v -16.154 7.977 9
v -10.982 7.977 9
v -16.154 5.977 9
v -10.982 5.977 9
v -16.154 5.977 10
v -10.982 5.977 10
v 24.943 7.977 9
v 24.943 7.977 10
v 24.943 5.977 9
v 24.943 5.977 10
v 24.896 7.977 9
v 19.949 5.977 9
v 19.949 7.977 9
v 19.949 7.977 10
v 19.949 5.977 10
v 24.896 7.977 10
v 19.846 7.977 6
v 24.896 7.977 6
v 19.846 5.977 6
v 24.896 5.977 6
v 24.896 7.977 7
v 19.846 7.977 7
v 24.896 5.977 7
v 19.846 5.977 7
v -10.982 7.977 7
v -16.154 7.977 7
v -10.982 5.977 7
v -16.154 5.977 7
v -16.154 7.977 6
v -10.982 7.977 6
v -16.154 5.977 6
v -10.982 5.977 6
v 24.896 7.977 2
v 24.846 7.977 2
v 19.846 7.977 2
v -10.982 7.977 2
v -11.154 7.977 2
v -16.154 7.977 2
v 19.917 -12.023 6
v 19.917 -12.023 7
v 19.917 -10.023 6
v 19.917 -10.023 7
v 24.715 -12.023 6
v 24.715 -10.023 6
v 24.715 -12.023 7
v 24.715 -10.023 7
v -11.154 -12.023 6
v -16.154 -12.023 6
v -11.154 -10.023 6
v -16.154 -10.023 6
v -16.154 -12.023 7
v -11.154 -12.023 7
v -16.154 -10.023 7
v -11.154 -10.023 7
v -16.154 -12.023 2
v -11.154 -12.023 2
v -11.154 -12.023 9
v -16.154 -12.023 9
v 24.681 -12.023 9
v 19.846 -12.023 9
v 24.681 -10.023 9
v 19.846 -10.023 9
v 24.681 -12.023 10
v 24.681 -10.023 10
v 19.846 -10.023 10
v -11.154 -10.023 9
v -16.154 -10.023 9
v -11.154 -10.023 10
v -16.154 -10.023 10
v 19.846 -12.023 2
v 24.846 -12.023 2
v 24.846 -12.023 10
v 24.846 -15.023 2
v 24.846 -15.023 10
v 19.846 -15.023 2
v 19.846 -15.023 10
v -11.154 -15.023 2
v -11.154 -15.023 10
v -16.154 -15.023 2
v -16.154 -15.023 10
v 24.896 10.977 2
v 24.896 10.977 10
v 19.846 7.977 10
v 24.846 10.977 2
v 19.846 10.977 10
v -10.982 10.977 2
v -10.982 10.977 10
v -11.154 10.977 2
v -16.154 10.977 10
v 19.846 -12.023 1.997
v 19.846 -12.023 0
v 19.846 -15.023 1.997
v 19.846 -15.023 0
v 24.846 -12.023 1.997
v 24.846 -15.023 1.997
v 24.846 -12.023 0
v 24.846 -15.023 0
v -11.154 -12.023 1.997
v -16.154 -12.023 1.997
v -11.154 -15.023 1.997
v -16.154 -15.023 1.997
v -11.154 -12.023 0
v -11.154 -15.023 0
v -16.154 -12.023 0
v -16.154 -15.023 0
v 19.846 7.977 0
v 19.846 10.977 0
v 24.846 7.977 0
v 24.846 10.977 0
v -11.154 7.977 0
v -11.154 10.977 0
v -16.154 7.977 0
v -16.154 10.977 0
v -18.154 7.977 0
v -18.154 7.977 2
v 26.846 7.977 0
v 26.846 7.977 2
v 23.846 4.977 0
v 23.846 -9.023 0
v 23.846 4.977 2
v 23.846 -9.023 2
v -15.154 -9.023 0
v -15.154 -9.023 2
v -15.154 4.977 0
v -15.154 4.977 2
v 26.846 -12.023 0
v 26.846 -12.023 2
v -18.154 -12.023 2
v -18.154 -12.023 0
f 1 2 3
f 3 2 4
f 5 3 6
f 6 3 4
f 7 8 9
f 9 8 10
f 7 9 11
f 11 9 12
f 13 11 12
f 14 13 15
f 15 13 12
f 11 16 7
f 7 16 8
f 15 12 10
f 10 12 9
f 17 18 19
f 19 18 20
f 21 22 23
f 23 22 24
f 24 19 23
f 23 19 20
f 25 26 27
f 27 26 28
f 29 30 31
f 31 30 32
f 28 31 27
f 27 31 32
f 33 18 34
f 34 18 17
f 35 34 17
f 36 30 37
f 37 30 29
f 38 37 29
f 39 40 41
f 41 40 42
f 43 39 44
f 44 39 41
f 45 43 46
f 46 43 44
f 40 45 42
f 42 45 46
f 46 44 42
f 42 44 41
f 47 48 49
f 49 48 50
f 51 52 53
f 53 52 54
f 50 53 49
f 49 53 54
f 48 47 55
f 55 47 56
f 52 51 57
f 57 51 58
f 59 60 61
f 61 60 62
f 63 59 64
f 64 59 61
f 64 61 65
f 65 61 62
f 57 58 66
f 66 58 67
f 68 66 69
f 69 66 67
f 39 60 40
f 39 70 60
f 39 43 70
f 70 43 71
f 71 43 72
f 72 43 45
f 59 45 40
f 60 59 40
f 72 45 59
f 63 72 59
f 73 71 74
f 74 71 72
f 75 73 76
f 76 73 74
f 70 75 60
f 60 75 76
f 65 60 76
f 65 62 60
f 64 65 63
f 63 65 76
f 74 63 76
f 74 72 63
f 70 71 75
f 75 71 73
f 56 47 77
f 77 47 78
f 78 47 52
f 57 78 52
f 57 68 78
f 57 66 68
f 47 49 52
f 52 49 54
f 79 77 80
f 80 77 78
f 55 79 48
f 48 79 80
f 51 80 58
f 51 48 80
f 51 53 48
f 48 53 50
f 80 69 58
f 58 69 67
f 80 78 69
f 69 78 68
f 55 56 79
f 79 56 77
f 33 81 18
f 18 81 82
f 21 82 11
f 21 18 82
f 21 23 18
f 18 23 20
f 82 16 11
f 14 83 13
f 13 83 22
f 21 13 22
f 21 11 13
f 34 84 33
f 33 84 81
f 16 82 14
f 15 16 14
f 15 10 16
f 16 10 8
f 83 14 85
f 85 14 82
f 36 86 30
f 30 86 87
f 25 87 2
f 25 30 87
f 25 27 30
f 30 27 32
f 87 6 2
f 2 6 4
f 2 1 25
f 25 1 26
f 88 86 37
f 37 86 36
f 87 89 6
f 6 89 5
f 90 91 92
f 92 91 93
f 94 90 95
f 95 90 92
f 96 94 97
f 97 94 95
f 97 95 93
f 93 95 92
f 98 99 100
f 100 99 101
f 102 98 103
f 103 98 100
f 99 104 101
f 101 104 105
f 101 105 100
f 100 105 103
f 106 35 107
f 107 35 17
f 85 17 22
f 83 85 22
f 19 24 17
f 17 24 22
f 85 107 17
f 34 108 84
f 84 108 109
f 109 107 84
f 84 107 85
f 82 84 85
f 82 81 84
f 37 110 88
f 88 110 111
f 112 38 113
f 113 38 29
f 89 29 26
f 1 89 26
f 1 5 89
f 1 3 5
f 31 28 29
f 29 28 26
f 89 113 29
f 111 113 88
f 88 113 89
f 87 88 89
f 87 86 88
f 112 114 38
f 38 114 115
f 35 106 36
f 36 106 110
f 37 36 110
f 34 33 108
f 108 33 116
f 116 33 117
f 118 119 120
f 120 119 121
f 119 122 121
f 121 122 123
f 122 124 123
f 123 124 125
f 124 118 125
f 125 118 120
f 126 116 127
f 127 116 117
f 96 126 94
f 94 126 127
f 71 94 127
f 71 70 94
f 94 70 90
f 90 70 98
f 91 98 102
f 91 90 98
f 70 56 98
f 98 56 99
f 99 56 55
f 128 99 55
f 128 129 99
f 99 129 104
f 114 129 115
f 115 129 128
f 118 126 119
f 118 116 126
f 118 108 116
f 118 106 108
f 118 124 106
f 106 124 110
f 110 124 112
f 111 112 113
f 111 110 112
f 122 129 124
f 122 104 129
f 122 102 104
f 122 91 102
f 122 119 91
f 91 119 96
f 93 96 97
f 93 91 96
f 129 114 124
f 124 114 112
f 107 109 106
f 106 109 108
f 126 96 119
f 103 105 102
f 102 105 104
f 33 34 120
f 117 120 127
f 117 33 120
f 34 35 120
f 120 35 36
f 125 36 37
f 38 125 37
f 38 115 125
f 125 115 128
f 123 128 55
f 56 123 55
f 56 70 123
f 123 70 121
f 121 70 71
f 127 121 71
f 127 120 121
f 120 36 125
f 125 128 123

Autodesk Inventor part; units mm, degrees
ref_plane "YZ Plane" through (0, 0, 0) normal (1, 0, 0) x (0, 1, 0)
ref_plane "XZ Plane" through (0, 0, 0) normal (0, 1, 0) x (-1, 0, 0)
ref_plane "XY Plane" through (0, 0, 0) normal (0, 0, 1) x (1, 0, 0)
sketch "Sketch1" plane through (0, 0, 0) normal (0, 0, 1) x (1, 0, 0)
  line L0 (-18.1542, 7.9766) -> (26.8458, 7.9766)
  line L1 (26.8458, 7.9766) -> (26.8458, -12.0234)
  line L2 (26.8458, -12.0234) -> (-18.1542, -12.0234)
  line L3 (-18.1542, -12.0234) -> (-18.1542, 7.9766)
  line L4 (-15.1542, 4.9766) -> (23.8458, 4.9766)
  line L5 (23.8458, 4.9766) -> (23.8458, -9.0234)
  line L6 (23.8458, -9.0234) -> (-15.1542, -9.0234)
  line L7 (-15.1542, -9.0234) -> (-15.1542, 4.9766)
  point P0 (0, 0)
  dimension "d0" = 45
  dimension "d1" = 20
  dimension "d2" = 3
  dimension "d3" = 3
  dimension "d4" = 3
  dimension "d5" = 3
extrude "Extrusion1" add sketch "Sketch1" along normal blind 2
sketch "Sketch2" plane through (0, 0, 2) normal (0, 0, 1) x (1, 0, 0)
  point P0 (0, 0)
sketch "Sketch3" plane through (-18.1542, 7.9766, 0) normal (0, 1, 0) x (1, 0, 0)
  line L0 (3, -2) -> (42, -2) projected
  line L1 (2, 0) -> (7, 0)
  line L2 (7, 0) -> (7, -2)
  line L3 (7, -2) -> (2, -2)
  line L4 (2, -2) -> (2, 0)
  line L5 (42, 0) -> (3, 0) projected
  line L6 (45, -2) -> (0, -2) projected
  line L7 (38, 0) -> (43, 0)
  line L8 (43, 0) -> (43, -2)
  line L9 (43, -2) -> (38, -2)
  line L10 (38, -2) -> (38, 0)
  line L11 (0, 0) -> (0, -2) projected
  line L12 (45, 0) -> (45, -2) projected
  point P0 (18.1542, 0)
  dimension "d8" = 2
  dimension "d9" = 2
  dimension "d10" = 5
  dimension "d11" = 5
extrude "Extrusion2" add sketch "Sketch3" along normal blind 3 contours L3 L4 L1 L2 L0 | L10 L5 L7 L8 L6 L0
sketch "Sketch4" plane through (-18.1542, -12.0234, 0) normal (0, -1, 0) x (1, 0, 0)
  line L0 (45, 0) -> (0, 0) projected
  line L1 (2, 1.9967) -> (7, 1.9967)
  line L2 (7, 1.9967) -> (7, 0)
  line L3 (7, 0) -> (2, 0)
  line L4 (2, 0) -> (2, 1.9967)
  line L5 (43, 1.9967) -> (38, 1.9967)
  line L6 (38, 1.9967) -> (38, 0)
  line L7 (38, 0) -> (43, 0)
  line L8 (43, 0) -> (43, 1.9967)
  line L9 (45, 0) -> (45, 2) projected
  line L10 (0, 0) -> (0, 2) projected
  point P0 (18.1542, 0)
  dimension "d14" = 2
  dimension "d15" = 2
  dimension "d16" = 5
  dimension "d17" = 5
extrude "Extrusion3" add sketch "Sketch4" along normal blind 3
sketch "Sketch5" plane through (0, 0, 2) normal (0, 0, 1) x (1, 0, 0)
  point P0 (0, 0)
sketch "Sketch6" plane through (0, 0, 2) normal (0, 0, 1) x (1, 0, 0)
  line L0 (-16.1542, 10.9766) -> (-10.9816, 10.9766)
  line L1 (-10.9816, 10.9766) -> (-10.9816, 7.9766)
  line L2 (-10.9816, 7.9766) -> (-16.1542, 7.9766)
  line L3 (-16.1542, 7.9766) -> (-16.1542, 10.9766)
  line L4 (19.8458, 10.9766) -> (24.8959, 10.9766)
  line L5 (24.8959, 10.9766) -> (24.8959, 7.9766)
  line L6 (24.8959, 7.9766) -> (19.8458, 7.9766)
  line L7 (19.8458, 7.9766) -> (19.8458, 10.9766)
  line L8 (-18.1542, -12.0234) -> (26.8458, -12.0234) projected
  line L9 (-16.1542, -12.0234) -> (-11.1542, -12.0234)
  line L10 (-11.1542, -12.0234) -> (-11.1542, -15.0234)
  line L11 (-11.1542, -15.0234) -> (-16.1542, -15.0234)
  line L12 (-16.1542, -15.0234) -> (-16.1542, -12.0234)
  line L13 (19.8458, -12.0234) -> (24.8458, -12.0234)
  line L14 (24.8458, -12.0234) -> (24.8458, -15.0234)
  line L15 (24.8458, -15.0234) -> (19.8458, -15.0234)
  line L16 (19.8458, -15.0234) -> (19.8458, -12.0234)
  point P0 (0, 0)
extrude "Extrusion4" add sketch "Sketch6" along normal blind 8
sketch "Sketch7" plane through (-16.1542, -12.0234, 2) normal (0, 1, 0) x (1, 0, 0)
  line L0 (5, 0) -> (5, -8) projected
  line L1 (0, -8) -> (5, -8)
  line L2 (5, -8) -> (5, -7)
  line L3 (5, -7) -> (0, -7)
  line L4 (0, -7) -> (0, -8)
  line L5 (36, -8) -> (40.8353, -8)
  line L6 (40.8353, -8) -> (40.8353, -7)
  line L7 (40.8353, -7) -> (36, -7)
  line L8 (36, -7) -> (36, -8)
  point P0 (16.1542, 2)
  dimension "d22" = 1
  dimension "d23" = 1
extrude "Extrusion5" add sketch "Sketch7" along normal blind 2
sketch "Sketch8" plane through (-16.1542, -12.0234, 2) normal (0, 1, 0) x (1, 0, 0)
  line L0 (0, 0) -> (0, -8) projected
  line L1 (5, 0) -> (5, -8) projected
  line L2 (0, -4) -> (5, -4)
  line L3 (5, -4) -> (5, -5)
  line L4 (5, -5) -> (0, -5)
  line L5 (0, -5) -> (0, -4)
  line L6 (36.0707, -5) -> (40.8694, -5)
  line L7 (40.8694, -5) -> (40.8694, -4)
  line L8 (40.8694, -4) -> (36.0707, -4)
  line L9 (36.0707, -4) -> (36.0707, -5)
  line L10 (0, -7) -> (5, -7) projected
  point P0 (16.1542, 2)
  dimension "d26" = 1
  dimension "d27" = 2
extrude "Extrusion6" add sketch "Sketch8" along normal blind 2 contours L2 L1 L4 L0 | L9 L8 L7 L6
sketch "Sketch9" plane through (-16.1542, 7.9766, 2) normal (0, -1, 0) x (1, 0, 0)
  line L0 (5.1726, 0) -> (5.1726, 8) projected
  line L1 (0, 8) -> (5.1726, 8)
  line L2 (5.1726, 8) -> (5.1726, 7)
  line L3 (5.1726, 7) -> (0, 7)
  line L4 (0, 7) -> (0, 8)
  line L5 (0, 0) -> (0, 8) projected
  line L6 (0, 5) -> (5.1726, 5)
  line L7 (5.1726, 5) -> (5.1726, 4)
  line L8 (5.1726, 4) -> (0, 4)
  line L9 (0, 4) -> (0, 5)
  line L10 (36.1034, 8) -> (41.097, 8)
  line L11 (41.097, 8) -> (41.097, 7)
  line L12 (41.097, 7) -> (36.1034, 7)
  line L13 (36.1034, 7) -> (36.1034, 8)
  line L14 (36, 0) -> (36, 8) projected
  line L15 (41.0501, 0) -> (41.0501, 8) projected
  line L16 (36, 5) -> (41.0501, 5)
  line L17 (41.0501, 5) -> (41.0501, 4)
  line L18 (41.0501, 4) -> (36, 4)
  line L19 (36, 4) -> (36, 5)
  point P0 (16.1542, -2)
  dimension "d30" = 1
  dimension "d31" = 2
  dimension "d32" = 1
extrude "Extrusion7" add sketch "Sketch9" along normal blind 2 contours L8 L5 L6 L0 | L3 L4 L1 L0 | L15 L18 L14 L16 | L10 L15 L12 L13 | L10 L11 L12 L15
properties part number "Ultrasound Sensor Holder"
